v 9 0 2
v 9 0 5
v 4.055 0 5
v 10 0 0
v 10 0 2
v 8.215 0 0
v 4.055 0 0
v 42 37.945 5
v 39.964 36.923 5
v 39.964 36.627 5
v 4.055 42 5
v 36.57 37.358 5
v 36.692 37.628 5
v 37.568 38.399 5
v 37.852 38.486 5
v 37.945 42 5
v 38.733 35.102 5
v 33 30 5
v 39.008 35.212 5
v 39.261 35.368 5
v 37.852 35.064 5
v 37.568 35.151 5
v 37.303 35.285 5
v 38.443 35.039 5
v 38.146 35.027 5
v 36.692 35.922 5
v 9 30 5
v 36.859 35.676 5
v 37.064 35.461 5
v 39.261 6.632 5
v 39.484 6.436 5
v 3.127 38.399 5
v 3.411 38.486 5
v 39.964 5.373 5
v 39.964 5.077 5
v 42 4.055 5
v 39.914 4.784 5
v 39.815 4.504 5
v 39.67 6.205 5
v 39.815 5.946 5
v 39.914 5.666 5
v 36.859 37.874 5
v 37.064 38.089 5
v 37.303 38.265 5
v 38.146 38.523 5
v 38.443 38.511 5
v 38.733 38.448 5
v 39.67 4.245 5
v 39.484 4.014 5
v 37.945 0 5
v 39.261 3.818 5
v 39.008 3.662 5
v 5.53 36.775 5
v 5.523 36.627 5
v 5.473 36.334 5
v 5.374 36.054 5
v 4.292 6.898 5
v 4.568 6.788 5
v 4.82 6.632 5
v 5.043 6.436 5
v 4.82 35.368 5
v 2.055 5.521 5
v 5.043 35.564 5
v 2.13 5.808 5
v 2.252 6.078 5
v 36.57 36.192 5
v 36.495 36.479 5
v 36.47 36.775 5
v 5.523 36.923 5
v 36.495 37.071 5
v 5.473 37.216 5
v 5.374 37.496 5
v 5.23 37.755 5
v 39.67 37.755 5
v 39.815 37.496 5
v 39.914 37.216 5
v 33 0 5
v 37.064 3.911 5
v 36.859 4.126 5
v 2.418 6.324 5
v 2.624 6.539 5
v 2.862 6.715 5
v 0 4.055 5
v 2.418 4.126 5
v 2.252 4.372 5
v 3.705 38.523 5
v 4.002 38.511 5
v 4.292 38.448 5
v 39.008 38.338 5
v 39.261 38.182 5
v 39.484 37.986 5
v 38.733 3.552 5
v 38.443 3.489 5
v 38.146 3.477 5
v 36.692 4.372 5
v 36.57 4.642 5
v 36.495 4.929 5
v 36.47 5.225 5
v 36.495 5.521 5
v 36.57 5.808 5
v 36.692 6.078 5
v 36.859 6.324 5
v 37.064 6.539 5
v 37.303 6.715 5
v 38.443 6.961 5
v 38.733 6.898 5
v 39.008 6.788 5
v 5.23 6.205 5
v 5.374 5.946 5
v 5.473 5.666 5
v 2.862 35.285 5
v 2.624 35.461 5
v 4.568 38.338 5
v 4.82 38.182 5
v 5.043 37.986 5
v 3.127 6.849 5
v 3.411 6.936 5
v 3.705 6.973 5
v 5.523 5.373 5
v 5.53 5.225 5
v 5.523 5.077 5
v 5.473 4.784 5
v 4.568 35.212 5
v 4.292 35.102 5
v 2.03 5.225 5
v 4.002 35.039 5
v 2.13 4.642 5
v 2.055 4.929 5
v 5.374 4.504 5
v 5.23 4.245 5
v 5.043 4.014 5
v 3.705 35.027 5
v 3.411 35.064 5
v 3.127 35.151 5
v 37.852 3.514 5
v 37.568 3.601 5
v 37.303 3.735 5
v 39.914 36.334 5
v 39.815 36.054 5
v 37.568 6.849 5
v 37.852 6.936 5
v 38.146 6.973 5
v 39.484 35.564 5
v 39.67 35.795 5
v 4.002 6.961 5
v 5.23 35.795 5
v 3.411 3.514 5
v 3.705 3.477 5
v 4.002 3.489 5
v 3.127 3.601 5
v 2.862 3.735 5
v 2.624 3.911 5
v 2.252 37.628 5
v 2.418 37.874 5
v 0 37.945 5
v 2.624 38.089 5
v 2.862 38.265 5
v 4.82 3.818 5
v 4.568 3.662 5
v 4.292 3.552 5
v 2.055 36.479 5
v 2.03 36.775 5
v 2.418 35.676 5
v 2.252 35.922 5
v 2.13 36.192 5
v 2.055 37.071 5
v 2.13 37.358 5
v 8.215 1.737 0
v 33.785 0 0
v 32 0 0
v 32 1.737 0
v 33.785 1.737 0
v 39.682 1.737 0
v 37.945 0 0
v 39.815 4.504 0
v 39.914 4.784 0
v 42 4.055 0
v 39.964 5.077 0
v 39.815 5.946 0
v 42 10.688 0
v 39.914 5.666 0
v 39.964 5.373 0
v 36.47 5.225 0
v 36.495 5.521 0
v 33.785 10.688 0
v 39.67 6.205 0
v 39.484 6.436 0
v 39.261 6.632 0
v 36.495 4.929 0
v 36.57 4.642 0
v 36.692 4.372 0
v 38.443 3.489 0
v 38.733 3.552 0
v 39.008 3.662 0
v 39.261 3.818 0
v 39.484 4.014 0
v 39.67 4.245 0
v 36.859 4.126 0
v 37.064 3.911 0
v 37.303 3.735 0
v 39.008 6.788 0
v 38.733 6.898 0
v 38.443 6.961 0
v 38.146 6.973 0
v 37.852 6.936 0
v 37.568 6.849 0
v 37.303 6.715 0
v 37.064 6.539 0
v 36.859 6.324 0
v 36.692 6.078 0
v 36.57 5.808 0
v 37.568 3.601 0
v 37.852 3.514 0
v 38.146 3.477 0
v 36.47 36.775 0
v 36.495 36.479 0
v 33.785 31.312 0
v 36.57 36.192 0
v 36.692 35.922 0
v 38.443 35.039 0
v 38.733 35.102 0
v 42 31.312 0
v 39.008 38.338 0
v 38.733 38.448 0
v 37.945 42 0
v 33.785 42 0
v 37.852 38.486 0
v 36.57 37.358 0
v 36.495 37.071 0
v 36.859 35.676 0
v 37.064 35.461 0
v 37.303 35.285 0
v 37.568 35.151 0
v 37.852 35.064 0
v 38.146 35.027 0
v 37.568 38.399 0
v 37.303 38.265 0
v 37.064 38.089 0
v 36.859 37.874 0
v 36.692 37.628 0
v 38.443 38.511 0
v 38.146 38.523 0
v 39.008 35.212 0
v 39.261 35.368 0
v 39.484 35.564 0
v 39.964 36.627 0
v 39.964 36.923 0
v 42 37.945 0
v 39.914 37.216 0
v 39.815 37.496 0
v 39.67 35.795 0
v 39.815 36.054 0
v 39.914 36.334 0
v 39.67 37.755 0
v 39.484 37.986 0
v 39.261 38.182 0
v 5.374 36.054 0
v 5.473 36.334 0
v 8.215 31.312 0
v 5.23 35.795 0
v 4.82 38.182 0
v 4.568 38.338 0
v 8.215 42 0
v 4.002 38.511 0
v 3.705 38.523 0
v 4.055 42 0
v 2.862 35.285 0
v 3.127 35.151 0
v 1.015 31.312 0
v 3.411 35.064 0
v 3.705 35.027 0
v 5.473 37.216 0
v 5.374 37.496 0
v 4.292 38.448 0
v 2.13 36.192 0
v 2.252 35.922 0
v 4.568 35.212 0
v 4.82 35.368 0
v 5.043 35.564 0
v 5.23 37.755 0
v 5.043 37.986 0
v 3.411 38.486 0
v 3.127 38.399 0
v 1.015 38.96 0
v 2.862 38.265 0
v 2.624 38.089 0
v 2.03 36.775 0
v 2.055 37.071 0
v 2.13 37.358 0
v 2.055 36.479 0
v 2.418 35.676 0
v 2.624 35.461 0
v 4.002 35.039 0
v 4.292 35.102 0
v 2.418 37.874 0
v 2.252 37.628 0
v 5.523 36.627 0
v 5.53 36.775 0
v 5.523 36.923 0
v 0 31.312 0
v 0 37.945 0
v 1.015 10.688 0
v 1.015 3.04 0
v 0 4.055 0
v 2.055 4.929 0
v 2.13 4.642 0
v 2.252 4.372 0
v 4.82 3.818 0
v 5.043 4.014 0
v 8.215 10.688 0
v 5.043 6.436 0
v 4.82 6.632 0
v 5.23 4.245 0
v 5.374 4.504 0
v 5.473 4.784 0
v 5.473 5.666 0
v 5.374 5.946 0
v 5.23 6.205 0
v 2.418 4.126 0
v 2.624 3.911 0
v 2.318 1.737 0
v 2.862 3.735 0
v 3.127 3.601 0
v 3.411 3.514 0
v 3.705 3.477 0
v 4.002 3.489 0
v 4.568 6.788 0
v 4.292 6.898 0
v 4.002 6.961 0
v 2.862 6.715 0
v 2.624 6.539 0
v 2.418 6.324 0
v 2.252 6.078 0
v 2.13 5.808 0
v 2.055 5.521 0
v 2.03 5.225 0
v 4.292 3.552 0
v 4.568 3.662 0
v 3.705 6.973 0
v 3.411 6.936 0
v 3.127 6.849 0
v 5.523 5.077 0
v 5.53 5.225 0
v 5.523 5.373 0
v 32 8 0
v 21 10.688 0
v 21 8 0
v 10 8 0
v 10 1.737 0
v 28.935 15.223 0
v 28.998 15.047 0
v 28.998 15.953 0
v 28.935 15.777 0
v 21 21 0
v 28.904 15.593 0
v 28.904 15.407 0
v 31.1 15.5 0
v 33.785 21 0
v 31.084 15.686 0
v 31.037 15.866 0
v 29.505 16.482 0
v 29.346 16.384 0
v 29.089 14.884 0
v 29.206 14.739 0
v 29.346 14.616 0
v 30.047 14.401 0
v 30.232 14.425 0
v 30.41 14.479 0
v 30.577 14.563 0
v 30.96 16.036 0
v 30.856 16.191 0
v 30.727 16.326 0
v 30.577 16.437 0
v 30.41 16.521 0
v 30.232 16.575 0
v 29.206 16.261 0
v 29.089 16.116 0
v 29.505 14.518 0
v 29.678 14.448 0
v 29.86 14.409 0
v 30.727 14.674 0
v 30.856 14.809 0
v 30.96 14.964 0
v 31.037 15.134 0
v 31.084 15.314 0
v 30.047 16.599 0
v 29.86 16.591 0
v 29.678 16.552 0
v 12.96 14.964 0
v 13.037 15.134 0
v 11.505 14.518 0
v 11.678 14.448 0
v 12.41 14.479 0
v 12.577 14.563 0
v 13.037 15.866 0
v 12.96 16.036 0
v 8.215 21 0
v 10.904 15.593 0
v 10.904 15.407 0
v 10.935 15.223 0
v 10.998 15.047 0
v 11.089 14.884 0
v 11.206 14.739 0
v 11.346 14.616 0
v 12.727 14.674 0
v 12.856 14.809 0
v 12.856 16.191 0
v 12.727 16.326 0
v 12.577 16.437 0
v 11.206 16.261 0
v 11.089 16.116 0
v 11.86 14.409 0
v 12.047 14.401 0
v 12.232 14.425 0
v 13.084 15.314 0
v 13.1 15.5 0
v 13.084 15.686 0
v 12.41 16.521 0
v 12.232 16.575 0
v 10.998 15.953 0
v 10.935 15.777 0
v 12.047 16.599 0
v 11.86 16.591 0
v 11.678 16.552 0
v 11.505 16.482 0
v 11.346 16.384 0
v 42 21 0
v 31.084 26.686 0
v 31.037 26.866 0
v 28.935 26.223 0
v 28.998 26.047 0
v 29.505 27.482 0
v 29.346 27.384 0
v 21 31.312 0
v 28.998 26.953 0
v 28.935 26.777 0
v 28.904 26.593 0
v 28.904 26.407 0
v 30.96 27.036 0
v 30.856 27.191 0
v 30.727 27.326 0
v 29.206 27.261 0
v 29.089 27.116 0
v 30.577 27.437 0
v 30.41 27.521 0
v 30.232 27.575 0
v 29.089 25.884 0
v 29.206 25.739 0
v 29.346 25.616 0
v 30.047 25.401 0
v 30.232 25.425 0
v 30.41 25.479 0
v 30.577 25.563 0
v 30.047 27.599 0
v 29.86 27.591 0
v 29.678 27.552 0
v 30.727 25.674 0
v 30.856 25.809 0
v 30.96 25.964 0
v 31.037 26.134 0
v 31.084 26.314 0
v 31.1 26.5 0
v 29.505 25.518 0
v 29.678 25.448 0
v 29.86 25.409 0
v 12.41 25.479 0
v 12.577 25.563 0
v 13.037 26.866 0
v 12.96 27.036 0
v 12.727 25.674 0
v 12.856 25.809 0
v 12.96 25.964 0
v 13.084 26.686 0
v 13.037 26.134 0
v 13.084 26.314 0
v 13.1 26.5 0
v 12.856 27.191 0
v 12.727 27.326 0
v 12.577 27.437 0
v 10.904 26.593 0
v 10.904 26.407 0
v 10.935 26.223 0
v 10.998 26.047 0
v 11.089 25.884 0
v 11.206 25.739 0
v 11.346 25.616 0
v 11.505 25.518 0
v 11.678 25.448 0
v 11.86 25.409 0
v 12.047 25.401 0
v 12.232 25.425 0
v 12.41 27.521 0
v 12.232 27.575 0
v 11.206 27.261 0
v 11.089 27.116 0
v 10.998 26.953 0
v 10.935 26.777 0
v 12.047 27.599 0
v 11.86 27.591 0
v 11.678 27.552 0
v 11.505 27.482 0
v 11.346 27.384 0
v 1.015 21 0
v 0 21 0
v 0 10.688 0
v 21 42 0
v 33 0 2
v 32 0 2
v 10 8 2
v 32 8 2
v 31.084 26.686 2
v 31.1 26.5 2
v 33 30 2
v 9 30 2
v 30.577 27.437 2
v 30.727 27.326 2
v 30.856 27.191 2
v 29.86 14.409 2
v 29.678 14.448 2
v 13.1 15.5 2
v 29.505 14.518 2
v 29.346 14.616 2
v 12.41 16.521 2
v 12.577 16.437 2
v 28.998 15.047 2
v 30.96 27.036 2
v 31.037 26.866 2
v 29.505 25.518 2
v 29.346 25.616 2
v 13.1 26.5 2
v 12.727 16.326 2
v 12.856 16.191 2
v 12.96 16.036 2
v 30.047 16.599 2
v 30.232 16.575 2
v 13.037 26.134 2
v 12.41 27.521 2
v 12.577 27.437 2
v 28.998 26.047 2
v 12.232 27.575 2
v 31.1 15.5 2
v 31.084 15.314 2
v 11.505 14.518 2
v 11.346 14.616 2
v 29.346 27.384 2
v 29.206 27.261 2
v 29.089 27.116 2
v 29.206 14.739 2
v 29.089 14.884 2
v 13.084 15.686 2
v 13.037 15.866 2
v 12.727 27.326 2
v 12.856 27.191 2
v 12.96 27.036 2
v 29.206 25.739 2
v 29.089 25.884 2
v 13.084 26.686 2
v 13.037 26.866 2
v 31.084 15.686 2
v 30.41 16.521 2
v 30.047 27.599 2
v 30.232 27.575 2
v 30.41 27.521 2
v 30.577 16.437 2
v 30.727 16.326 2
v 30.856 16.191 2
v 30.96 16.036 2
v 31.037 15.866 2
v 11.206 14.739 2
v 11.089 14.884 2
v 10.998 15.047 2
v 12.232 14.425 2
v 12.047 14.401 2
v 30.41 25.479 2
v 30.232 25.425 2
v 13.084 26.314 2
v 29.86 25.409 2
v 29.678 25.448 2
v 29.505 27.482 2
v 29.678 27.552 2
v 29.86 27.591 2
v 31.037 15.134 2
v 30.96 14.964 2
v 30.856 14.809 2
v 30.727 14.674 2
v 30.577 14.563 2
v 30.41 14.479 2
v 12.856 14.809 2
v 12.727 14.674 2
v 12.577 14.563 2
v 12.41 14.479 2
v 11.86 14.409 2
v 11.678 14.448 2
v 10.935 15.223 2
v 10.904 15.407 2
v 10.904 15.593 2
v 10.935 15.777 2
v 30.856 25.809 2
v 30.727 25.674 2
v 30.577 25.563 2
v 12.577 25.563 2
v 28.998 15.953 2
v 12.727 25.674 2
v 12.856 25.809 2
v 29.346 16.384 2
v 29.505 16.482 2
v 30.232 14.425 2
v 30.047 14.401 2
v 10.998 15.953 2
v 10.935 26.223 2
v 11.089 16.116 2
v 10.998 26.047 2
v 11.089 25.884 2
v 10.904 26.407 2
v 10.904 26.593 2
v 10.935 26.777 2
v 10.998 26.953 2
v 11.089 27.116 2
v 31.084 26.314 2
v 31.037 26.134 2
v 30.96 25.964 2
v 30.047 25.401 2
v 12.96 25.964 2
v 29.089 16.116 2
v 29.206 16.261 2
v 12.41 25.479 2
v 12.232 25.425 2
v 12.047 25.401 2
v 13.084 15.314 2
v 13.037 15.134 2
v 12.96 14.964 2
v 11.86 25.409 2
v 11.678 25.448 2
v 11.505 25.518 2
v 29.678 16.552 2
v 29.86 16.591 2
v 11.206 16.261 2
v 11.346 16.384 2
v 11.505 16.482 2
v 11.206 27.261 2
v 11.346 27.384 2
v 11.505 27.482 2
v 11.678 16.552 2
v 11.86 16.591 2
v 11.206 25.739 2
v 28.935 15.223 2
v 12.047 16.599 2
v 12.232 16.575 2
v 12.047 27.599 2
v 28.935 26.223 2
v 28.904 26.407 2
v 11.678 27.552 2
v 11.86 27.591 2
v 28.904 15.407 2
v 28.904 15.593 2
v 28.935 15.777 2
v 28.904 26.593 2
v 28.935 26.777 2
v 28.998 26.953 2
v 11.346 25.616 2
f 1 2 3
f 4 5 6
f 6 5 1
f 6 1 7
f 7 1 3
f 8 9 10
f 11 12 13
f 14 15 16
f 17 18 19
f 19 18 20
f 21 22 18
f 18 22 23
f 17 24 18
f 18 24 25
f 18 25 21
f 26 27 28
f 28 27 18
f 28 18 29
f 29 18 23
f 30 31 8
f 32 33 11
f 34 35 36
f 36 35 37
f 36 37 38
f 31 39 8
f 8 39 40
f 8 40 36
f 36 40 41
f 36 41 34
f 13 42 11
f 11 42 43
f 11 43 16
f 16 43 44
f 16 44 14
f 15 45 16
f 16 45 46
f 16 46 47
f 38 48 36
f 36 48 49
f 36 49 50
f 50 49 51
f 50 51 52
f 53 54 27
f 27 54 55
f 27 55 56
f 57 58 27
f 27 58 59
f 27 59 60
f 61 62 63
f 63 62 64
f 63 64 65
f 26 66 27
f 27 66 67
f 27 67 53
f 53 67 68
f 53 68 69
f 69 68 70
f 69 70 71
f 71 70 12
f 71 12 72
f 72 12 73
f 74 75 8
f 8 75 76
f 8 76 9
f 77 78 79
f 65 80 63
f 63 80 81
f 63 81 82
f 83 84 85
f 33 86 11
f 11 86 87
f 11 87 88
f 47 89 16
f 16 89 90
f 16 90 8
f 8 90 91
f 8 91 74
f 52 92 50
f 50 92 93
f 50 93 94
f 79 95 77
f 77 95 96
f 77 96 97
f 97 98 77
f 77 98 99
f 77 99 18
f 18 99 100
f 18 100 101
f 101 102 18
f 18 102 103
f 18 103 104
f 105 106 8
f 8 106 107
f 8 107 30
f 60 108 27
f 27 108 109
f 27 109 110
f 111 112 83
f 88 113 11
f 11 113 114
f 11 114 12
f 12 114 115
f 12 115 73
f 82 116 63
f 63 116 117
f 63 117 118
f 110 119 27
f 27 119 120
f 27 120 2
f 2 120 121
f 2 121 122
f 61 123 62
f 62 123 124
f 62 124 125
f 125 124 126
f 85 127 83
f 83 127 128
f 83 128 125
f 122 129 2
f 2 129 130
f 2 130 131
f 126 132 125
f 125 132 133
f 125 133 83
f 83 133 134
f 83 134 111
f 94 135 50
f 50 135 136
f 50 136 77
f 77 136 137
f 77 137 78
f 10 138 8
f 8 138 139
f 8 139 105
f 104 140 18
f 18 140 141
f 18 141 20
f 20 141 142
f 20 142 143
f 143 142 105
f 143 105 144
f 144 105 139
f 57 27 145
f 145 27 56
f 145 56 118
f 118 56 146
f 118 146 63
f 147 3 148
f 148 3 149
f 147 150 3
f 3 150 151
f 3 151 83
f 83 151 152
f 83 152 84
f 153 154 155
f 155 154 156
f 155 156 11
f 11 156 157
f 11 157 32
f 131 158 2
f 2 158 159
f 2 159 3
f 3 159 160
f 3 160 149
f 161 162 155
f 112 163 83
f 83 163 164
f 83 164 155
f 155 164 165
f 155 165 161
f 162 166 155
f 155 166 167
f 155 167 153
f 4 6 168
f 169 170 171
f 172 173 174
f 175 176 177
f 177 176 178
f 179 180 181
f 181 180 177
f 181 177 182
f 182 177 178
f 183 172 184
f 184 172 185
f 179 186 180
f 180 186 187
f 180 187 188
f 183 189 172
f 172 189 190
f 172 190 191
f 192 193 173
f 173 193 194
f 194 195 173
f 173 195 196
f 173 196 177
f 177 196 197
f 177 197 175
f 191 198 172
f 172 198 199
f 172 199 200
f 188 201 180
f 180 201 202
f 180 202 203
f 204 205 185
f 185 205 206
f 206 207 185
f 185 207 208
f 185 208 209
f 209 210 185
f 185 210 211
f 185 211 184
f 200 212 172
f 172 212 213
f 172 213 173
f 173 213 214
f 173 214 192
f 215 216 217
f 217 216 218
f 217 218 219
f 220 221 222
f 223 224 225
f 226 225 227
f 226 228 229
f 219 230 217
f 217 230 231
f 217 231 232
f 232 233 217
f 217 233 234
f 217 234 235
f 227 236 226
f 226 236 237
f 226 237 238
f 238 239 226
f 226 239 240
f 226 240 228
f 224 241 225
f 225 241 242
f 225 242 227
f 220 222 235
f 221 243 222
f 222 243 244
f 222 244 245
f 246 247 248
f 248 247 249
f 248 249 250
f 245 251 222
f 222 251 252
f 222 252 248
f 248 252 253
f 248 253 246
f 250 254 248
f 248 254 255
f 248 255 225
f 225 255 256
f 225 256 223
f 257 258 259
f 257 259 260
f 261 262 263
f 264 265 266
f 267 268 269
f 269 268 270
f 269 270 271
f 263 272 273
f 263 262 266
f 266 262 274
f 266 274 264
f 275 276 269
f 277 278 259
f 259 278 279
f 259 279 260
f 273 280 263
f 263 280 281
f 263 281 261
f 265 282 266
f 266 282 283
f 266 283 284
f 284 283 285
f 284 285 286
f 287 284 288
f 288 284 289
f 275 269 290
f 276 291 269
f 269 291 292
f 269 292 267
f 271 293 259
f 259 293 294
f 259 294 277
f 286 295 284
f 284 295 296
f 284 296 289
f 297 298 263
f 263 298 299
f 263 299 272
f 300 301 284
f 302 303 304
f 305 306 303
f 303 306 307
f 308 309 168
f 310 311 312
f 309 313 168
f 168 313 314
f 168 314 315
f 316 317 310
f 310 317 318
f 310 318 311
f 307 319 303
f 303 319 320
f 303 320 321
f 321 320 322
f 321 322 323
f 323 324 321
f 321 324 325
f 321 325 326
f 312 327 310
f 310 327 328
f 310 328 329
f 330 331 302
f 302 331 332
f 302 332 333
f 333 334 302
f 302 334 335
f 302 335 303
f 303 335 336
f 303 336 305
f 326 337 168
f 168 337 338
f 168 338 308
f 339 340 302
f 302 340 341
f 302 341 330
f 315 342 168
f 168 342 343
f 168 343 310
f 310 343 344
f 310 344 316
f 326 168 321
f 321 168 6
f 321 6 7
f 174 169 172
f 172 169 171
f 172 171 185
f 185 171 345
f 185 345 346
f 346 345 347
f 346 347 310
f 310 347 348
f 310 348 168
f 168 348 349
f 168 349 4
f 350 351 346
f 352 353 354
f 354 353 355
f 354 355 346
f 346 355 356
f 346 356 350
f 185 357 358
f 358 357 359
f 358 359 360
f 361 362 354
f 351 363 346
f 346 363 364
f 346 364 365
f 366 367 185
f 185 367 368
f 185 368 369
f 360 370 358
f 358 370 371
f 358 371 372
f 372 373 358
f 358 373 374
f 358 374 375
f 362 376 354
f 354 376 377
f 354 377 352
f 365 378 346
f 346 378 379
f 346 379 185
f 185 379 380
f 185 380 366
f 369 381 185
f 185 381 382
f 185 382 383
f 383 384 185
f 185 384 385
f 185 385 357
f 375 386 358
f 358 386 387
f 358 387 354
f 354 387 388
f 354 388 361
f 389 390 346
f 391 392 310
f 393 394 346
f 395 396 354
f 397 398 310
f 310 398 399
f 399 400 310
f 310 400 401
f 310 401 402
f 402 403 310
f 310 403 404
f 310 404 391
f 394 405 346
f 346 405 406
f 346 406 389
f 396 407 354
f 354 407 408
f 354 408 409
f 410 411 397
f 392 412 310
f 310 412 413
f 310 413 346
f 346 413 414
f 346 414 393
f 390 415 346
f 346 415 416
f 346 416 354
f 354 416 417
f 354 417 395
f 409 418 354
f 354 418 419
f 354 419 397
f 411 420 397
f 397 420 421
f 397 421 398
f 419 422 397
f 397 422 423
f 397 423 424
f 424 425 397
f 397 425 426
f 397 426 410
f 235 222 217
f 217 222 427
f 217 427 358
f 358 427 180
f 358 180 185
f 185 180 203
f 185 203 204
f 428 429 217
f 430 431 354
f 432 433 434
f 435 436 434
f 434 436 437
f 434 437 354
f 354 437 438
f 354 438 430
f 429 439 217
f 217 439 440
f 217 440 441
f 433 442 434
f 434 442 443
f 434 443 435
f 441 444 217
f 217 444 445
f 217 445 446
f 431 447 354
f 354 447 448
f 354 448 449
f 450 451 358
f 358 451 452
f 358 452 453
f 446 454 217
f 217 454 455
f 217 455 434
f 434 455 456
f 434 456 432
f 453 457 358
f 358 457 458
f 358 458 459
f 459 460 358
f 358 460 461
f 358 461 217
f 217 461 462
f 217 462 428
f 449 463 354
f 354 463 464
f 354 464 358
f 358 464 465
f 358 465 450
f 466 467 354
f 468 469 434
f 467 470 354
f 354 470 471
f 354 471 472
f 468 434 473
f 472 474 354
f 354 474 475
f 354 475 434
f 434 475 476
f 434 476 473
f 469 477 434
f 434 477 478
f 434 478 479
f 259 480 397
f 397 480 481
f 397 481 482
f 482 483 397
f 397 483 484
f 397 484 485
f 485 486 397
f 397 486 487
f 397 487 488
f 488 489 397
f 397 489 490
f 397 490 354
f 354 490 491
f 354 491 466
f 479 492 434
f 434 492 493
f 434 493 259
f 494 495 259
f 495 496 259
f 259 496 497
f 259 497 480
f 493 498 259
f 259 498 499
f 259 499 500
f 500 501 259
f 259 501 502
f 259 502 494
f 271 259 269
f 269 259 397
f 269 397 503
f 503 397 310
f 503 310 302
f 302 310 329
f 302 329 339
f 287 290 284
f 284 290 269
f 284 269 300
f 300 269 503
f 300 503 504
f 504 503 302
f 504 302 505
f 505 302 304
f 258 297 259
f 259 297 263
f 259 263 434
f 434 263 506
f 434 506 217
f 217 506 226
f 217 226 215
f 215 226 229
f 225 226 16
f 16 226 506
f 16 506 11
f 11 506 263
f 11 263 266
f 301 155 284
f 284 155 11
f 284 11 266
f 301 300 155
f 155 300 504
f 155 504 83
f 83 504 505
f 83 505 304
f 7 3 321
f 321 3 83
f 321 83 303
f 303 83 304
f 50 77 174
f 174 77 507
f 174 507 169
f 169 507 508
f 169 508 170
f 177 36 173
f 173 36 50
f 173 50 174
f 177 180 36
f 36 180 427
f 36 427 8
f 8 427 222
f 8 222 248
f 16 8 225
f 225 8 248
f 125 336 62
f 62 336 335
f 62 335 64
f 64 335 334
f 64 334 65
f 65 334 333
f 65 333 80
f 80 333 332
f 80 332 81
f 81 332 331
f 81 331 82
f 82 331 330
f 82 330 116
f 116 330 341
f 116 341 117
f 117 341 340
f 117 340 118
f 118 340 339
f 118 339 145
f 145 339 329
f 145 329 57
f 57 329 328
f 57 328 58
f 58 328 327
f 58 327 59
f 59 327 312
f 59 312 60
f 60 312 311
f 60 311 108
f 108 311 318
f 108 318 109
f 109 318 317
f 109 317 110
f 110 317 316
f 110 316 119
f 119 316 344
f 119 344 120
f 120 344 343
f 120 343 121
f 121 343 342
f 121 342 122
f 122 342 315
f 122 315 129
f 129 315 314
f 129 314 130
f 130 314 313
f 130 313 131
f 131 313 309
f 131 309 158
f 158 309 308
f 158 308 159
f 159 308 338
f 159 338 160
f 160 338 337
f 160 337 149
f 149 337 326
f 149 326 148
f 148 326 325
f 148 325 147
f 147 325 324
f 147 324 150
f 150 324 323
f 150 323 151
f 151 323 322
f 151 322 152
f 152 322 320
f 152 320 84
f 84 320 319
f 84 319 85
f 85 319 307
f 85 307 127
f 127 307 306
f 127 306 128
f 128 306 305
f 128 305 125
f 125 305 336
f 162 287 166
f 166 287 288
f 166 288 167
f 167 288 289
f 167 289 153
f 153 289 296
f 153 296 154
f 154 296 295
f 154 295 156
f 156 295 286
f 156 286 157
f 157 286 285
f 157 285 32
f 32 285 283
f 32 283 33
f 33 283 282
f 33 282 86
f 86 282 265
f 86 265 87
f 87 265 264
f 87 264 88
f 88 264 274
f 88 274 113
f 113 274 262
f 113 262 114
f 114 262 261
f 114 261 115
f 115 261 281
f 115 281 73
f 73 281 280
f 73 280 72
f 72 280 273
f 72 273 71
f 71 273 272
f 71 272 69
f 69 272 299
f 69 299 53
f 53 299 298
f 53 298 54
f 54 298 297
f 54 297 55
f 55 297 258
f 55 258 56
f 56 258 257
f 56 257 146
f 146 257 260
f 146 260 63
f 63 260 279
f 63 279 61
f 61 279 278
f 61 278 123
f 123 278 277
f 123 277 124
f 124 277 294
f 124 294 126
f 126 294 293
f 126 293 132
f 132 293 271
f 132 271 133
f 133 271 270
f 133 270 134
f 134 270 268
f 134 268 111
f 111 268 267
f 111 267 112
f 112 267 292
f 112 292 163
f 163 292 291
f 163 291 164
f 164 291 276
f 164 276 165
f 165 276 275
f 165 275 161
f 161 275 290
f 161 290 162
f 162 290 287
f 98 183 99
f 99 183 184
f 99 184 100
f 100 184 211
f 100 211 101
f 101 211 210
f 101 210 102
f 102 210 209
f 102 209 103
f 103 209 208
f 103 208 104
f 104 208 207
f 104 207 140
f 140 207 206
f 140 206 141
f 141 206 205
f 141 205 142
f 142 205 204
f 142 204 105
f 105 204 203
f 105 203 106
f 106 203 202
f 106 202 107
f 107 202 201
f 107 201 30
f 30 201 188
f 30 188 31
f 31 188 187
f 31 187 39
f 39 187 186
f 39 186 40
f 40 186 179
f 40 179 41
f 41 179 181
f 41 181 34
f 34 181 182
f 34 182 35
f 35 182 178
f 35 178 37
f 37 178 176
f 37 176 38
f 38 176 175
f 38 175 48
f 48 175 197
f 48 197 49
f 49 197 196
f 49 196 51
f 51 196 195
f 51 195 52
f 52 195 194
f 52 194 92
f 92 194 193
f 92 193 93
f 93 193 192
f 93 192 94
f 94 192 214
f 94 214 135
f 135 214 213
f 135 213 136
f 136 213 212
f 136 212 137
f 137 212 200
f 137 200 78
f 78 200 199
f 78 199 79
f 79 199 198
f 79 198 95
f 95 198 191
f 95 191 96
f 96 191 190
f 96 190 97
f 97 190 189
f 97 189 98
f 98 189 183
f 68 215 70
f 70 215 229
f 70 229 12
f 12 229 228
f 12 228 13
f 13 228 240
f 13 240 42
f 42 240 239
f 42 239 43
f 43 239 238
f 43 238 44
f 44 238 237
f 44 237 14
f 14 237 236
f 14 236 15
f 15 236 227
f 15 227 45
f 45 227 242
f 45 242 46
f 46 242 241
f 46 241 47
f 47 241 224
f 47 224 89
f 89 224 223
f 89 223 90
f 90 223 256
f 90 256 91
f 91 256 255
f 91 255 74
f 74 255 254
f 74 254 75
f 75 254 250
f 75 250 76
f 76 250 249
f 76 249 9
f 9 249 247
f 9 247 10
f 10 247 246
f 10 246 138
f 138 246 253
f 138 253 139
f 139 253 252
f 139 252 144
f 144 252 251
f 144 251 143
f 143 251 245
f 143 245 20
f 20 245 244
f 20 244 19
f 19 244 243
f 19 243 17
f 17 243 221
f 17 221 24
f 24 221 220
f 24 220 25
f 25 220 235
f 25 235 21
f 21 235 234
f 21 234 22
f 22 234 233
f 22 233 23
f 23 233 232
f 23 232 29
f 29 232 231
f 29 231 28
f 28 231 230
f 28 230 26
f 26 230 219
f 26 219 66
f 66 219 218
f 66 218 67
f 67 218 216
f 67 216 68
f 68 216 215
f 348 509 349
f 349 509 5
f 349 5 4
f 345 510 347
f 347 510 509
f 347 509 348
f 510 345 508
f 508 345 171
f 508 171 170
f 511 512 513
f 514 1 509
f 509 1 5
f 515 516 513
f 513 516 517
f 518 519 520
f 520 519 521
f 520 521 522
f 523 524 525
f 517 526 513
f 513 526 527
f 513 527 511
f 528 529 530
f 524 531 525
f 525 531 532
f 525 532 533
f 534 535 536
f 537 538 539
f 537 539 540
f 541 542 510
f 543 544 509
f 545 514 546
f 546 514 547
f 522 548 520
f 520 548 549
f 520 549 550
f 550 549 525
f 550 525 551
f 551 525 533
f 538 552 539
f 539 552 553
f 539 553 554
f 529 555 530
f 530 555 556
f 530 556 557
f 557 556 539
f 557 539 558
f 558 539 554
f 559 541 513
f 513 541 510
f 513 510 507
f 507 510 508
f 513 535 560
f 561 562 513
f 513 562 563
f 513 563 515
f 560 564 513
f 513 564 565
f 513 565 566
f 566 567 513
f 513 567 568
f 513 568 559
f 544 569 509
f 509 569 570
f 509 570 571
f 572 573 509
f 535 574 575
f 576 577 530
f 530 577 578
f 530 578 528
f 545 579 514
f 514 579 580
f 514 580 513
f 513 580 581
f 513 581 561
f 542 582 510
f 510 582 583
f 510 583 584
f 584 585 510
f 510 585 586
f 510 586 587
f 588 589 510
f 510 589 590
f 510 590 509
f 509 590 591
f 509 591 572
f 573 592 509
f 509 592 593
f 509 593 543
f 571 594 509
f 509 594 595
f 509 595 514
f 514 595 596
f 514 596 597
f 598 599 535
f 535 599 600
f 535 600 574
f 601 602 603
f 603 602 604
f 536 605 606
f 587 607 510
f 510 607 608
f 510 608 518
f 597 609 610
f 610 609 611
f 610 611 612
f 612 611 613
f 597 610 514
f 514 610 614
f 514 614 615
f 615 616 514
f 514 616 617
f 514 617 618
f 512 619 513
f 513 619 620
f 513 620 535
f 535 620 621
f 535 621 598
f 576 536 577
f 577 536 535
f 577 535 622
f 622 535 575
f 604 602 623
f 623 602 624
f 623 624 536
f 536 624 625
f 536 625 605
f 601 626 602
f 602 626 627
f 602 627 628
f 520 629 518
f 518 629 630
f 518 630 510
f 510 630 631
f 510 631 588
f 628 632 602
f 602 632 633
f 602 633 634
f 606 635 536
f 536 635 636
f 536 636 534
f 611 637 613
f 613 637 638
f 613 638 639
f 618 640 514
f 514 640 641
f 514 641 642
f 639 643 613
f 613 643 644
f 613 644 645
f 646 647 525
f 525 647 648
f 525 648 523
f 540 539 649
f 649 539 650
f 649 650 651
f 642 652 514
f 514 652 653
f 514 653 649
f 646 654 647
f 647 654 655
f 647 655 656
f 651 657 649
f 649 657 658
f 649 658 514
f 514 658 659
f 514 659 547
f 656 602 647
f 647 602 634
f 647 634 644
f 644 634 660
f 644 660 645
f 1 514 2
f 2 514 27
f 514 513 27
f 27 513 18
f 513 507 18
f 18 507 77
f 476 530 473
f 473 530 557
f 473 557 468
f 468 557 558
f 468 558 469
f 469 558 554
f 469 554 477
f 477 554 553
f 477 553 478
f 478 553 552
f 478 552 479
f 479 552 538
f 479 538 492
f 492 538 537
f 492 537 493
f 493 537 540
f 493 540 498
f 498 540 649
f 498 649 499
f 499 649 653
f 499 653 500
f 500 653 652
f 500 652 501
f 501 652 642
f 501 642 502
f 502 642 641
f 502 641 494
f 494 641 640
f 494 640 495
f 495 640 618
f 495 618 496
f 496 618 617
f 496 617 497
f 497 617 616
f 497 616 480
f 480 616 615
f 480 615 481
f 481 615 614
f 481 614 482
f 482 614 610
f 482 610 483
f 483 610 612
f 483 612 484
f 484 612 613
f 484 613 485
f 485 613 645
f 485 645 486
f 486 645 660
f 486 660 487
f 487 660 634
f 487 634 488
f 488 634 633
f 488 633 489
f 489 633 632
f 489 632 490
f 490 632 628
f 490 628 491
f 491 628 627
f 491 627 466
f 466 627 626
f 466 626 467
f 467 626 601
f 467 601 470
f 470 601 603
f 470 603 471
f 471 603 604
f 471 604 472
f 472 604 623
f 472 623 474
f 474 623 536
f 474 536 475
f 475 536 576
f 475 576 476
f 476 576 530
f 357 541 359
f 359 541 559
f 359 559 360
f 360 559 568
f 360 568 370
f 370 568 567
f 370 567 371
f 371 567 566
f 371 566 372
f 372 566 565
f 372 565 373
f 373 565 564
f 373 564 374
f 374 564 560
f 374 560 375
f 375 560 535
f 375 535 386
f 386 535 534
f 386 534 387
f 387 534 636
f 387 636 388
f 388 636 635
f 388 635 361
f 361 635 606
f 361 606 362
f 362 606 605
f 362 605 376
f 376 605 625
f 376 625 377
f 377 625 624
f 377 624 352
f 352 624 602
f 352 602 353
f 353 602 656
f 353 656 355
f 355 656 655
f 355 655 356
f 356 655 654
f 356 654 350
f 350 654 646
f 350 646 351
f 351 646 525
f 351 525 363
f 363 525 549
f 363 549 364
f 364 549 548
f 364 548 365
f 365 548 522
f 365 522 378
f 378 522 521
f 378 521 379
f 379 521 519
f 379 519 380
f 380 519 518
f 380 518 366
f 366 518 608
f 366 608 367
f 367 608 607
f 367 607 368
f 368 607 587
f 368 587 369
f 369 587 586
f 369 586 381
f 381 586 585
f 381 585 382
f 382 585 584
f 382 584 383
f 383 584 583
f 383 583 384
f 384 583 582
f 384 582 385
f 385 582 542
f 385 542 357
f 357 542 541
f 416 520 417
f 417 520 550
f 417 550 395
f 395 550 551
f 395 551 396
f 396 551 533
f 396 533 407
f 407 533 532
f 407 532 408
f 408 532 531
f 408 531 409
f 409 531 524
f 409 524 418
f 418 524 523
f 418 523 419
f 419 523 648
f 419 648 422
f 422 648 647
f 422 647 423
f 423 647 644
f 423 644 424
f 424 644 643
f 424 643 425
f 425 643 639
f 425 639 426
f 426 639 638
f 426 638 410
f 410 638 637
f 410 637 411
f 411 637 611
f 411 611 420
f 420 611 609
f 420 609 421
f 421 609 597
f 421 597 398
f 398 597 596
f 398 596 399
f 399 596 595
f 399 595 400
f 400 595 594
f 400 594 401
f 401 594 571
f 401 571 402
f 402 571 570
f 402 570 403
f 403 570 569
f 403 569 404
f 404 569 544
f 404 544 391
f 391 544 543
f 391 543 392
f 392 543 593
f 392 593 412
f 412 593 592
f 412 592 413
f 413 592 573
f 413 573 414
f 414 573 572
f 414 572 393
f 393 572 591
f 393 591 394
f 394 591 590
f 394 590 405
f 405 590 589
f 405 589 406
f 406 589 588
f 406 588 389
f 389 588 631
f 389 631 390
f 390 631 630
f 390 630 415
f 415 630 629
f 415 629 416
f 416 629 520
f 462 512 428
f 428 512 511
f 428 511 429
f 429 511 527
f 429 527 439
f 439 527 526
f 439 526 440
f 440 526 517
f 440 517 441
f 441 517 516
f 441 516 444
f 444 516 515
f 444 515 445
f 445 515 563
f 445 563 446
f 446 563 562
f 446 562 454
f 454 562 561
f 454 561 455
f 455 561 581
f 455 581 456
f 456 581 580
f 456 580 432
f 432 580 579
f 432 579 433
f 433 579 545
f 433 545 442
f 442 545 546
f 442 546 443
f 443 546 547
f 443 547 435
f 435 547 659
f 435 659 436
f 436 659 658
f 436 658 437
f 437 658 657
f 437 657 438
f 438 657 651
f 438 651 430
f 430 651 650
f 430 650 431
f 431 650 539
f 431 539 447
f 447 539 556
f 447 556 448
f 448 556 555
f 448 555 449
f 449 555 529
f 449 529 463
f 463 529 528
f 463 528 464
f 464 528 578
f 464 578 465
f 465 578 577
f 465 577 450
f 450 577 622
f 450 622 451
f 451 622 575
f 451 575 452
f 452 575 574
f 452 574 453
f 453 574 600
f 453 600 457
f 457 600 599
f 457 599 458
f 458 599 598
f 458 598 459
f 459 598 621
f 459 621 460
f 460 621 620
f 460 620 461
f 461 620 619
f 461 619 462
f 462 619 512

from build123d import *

# Parameters (mm, degrees)
SKETCH1_R               = 1.75
BOSS_EXTRUDE1_DEPTH     = 5
CUT_EXTRUDE1_DEPTH      = 60.607046563
CUT_EXTRUDE1_DEPTH_BACK = 60.607046563
SKETCH2_W               = 22
SKETCH2_H               = 8
SKETCH3_W               = 24
SKETCH3_H               = 30
CUT_EXTRUDE2_DEPTH      = 3
SKETCH4_R               = 1.1
CUT_EXTRUDE3_DEPTH      = 3


with BuildPart() as part:
    # Sketch1 → Boss-Extrude1 (new body)
    with BuildSketch(Plane.XY):
        Polygon((4.055, 42), (0, 37.945), (0, 4.055), (4.055, 0), (37.945, 0), (42, 4.055), (42, 37.945), (37.945, 42), align=None)
        with Locations((3.779747468, 36.775)):
            Circle(SKETCH1_R, mode=Mode.SUBTRACT)
        with Locations((3.779747468, 5.225)):
            Circle(SKETCH1_R, mode=Mode.SUBTRACT)
        with Locations(Location((38.220252532, 5.225, 0), (0, 0, 180))):
            Circle(SKETCH1_R, mode=Mode.SUBTRACT)
        with Locations(Location((38.220252532, 36.775, 0), (0, 0, 180))):
            Circle(SKETCH1_R, mode=Mode.SUBTRACT)
    extrude(amount=BOSS_EXTRUDE1_DEPTH)

    # Sketch2 → Cut-Extrude1 (cut, two sides: drawn at the far end of the back side and taken through both)
    with BuildSketch(Plane.XY.offset(5).offset(-CUT_EXTRUDE1_DEPTH_BACK)):
        with Locations((21, 4)):
            Rectangle(SKETCH2_W, SKETCH2_H)
    extrude(amount=CUT_EXTRUDE1_DEPTH + CUT_EXTRUDE1_DEPTH_BACK, mode=Mode.SUBTRACT)

    # Sketch3 → Cut-Extrude2 (cut)
    with BuildSketch(Plane.XY.offset(5)):
        with Locations((21, 15)):
            Rectangle(SKETCH3_W, SKETCH3_H)
    extrude(amount=-CUT_EXTRUDE2_DEPTH, mode=Mode.SUBTRACT)

    # Sketch4 → Cut-Extrude3 (cut)
    with BuildSketch(Plane.XY.offset(2)):
        with Locations((12, 26.5)):
            Circle(SKETCH4_R)
        with Locations((30, 26.5)):
            Circle(SKETCH4_R)
        with Locations((12, 15.5)):
            Circle(SKETCH4_R)
        with Locations((30, 15.5)):
            Circle(SKETCH4_R)
    extrude(amount=-CUT_EXTRUDE3_DEPTH, mode=Mode.SUBTRACT)


solid = part.part
